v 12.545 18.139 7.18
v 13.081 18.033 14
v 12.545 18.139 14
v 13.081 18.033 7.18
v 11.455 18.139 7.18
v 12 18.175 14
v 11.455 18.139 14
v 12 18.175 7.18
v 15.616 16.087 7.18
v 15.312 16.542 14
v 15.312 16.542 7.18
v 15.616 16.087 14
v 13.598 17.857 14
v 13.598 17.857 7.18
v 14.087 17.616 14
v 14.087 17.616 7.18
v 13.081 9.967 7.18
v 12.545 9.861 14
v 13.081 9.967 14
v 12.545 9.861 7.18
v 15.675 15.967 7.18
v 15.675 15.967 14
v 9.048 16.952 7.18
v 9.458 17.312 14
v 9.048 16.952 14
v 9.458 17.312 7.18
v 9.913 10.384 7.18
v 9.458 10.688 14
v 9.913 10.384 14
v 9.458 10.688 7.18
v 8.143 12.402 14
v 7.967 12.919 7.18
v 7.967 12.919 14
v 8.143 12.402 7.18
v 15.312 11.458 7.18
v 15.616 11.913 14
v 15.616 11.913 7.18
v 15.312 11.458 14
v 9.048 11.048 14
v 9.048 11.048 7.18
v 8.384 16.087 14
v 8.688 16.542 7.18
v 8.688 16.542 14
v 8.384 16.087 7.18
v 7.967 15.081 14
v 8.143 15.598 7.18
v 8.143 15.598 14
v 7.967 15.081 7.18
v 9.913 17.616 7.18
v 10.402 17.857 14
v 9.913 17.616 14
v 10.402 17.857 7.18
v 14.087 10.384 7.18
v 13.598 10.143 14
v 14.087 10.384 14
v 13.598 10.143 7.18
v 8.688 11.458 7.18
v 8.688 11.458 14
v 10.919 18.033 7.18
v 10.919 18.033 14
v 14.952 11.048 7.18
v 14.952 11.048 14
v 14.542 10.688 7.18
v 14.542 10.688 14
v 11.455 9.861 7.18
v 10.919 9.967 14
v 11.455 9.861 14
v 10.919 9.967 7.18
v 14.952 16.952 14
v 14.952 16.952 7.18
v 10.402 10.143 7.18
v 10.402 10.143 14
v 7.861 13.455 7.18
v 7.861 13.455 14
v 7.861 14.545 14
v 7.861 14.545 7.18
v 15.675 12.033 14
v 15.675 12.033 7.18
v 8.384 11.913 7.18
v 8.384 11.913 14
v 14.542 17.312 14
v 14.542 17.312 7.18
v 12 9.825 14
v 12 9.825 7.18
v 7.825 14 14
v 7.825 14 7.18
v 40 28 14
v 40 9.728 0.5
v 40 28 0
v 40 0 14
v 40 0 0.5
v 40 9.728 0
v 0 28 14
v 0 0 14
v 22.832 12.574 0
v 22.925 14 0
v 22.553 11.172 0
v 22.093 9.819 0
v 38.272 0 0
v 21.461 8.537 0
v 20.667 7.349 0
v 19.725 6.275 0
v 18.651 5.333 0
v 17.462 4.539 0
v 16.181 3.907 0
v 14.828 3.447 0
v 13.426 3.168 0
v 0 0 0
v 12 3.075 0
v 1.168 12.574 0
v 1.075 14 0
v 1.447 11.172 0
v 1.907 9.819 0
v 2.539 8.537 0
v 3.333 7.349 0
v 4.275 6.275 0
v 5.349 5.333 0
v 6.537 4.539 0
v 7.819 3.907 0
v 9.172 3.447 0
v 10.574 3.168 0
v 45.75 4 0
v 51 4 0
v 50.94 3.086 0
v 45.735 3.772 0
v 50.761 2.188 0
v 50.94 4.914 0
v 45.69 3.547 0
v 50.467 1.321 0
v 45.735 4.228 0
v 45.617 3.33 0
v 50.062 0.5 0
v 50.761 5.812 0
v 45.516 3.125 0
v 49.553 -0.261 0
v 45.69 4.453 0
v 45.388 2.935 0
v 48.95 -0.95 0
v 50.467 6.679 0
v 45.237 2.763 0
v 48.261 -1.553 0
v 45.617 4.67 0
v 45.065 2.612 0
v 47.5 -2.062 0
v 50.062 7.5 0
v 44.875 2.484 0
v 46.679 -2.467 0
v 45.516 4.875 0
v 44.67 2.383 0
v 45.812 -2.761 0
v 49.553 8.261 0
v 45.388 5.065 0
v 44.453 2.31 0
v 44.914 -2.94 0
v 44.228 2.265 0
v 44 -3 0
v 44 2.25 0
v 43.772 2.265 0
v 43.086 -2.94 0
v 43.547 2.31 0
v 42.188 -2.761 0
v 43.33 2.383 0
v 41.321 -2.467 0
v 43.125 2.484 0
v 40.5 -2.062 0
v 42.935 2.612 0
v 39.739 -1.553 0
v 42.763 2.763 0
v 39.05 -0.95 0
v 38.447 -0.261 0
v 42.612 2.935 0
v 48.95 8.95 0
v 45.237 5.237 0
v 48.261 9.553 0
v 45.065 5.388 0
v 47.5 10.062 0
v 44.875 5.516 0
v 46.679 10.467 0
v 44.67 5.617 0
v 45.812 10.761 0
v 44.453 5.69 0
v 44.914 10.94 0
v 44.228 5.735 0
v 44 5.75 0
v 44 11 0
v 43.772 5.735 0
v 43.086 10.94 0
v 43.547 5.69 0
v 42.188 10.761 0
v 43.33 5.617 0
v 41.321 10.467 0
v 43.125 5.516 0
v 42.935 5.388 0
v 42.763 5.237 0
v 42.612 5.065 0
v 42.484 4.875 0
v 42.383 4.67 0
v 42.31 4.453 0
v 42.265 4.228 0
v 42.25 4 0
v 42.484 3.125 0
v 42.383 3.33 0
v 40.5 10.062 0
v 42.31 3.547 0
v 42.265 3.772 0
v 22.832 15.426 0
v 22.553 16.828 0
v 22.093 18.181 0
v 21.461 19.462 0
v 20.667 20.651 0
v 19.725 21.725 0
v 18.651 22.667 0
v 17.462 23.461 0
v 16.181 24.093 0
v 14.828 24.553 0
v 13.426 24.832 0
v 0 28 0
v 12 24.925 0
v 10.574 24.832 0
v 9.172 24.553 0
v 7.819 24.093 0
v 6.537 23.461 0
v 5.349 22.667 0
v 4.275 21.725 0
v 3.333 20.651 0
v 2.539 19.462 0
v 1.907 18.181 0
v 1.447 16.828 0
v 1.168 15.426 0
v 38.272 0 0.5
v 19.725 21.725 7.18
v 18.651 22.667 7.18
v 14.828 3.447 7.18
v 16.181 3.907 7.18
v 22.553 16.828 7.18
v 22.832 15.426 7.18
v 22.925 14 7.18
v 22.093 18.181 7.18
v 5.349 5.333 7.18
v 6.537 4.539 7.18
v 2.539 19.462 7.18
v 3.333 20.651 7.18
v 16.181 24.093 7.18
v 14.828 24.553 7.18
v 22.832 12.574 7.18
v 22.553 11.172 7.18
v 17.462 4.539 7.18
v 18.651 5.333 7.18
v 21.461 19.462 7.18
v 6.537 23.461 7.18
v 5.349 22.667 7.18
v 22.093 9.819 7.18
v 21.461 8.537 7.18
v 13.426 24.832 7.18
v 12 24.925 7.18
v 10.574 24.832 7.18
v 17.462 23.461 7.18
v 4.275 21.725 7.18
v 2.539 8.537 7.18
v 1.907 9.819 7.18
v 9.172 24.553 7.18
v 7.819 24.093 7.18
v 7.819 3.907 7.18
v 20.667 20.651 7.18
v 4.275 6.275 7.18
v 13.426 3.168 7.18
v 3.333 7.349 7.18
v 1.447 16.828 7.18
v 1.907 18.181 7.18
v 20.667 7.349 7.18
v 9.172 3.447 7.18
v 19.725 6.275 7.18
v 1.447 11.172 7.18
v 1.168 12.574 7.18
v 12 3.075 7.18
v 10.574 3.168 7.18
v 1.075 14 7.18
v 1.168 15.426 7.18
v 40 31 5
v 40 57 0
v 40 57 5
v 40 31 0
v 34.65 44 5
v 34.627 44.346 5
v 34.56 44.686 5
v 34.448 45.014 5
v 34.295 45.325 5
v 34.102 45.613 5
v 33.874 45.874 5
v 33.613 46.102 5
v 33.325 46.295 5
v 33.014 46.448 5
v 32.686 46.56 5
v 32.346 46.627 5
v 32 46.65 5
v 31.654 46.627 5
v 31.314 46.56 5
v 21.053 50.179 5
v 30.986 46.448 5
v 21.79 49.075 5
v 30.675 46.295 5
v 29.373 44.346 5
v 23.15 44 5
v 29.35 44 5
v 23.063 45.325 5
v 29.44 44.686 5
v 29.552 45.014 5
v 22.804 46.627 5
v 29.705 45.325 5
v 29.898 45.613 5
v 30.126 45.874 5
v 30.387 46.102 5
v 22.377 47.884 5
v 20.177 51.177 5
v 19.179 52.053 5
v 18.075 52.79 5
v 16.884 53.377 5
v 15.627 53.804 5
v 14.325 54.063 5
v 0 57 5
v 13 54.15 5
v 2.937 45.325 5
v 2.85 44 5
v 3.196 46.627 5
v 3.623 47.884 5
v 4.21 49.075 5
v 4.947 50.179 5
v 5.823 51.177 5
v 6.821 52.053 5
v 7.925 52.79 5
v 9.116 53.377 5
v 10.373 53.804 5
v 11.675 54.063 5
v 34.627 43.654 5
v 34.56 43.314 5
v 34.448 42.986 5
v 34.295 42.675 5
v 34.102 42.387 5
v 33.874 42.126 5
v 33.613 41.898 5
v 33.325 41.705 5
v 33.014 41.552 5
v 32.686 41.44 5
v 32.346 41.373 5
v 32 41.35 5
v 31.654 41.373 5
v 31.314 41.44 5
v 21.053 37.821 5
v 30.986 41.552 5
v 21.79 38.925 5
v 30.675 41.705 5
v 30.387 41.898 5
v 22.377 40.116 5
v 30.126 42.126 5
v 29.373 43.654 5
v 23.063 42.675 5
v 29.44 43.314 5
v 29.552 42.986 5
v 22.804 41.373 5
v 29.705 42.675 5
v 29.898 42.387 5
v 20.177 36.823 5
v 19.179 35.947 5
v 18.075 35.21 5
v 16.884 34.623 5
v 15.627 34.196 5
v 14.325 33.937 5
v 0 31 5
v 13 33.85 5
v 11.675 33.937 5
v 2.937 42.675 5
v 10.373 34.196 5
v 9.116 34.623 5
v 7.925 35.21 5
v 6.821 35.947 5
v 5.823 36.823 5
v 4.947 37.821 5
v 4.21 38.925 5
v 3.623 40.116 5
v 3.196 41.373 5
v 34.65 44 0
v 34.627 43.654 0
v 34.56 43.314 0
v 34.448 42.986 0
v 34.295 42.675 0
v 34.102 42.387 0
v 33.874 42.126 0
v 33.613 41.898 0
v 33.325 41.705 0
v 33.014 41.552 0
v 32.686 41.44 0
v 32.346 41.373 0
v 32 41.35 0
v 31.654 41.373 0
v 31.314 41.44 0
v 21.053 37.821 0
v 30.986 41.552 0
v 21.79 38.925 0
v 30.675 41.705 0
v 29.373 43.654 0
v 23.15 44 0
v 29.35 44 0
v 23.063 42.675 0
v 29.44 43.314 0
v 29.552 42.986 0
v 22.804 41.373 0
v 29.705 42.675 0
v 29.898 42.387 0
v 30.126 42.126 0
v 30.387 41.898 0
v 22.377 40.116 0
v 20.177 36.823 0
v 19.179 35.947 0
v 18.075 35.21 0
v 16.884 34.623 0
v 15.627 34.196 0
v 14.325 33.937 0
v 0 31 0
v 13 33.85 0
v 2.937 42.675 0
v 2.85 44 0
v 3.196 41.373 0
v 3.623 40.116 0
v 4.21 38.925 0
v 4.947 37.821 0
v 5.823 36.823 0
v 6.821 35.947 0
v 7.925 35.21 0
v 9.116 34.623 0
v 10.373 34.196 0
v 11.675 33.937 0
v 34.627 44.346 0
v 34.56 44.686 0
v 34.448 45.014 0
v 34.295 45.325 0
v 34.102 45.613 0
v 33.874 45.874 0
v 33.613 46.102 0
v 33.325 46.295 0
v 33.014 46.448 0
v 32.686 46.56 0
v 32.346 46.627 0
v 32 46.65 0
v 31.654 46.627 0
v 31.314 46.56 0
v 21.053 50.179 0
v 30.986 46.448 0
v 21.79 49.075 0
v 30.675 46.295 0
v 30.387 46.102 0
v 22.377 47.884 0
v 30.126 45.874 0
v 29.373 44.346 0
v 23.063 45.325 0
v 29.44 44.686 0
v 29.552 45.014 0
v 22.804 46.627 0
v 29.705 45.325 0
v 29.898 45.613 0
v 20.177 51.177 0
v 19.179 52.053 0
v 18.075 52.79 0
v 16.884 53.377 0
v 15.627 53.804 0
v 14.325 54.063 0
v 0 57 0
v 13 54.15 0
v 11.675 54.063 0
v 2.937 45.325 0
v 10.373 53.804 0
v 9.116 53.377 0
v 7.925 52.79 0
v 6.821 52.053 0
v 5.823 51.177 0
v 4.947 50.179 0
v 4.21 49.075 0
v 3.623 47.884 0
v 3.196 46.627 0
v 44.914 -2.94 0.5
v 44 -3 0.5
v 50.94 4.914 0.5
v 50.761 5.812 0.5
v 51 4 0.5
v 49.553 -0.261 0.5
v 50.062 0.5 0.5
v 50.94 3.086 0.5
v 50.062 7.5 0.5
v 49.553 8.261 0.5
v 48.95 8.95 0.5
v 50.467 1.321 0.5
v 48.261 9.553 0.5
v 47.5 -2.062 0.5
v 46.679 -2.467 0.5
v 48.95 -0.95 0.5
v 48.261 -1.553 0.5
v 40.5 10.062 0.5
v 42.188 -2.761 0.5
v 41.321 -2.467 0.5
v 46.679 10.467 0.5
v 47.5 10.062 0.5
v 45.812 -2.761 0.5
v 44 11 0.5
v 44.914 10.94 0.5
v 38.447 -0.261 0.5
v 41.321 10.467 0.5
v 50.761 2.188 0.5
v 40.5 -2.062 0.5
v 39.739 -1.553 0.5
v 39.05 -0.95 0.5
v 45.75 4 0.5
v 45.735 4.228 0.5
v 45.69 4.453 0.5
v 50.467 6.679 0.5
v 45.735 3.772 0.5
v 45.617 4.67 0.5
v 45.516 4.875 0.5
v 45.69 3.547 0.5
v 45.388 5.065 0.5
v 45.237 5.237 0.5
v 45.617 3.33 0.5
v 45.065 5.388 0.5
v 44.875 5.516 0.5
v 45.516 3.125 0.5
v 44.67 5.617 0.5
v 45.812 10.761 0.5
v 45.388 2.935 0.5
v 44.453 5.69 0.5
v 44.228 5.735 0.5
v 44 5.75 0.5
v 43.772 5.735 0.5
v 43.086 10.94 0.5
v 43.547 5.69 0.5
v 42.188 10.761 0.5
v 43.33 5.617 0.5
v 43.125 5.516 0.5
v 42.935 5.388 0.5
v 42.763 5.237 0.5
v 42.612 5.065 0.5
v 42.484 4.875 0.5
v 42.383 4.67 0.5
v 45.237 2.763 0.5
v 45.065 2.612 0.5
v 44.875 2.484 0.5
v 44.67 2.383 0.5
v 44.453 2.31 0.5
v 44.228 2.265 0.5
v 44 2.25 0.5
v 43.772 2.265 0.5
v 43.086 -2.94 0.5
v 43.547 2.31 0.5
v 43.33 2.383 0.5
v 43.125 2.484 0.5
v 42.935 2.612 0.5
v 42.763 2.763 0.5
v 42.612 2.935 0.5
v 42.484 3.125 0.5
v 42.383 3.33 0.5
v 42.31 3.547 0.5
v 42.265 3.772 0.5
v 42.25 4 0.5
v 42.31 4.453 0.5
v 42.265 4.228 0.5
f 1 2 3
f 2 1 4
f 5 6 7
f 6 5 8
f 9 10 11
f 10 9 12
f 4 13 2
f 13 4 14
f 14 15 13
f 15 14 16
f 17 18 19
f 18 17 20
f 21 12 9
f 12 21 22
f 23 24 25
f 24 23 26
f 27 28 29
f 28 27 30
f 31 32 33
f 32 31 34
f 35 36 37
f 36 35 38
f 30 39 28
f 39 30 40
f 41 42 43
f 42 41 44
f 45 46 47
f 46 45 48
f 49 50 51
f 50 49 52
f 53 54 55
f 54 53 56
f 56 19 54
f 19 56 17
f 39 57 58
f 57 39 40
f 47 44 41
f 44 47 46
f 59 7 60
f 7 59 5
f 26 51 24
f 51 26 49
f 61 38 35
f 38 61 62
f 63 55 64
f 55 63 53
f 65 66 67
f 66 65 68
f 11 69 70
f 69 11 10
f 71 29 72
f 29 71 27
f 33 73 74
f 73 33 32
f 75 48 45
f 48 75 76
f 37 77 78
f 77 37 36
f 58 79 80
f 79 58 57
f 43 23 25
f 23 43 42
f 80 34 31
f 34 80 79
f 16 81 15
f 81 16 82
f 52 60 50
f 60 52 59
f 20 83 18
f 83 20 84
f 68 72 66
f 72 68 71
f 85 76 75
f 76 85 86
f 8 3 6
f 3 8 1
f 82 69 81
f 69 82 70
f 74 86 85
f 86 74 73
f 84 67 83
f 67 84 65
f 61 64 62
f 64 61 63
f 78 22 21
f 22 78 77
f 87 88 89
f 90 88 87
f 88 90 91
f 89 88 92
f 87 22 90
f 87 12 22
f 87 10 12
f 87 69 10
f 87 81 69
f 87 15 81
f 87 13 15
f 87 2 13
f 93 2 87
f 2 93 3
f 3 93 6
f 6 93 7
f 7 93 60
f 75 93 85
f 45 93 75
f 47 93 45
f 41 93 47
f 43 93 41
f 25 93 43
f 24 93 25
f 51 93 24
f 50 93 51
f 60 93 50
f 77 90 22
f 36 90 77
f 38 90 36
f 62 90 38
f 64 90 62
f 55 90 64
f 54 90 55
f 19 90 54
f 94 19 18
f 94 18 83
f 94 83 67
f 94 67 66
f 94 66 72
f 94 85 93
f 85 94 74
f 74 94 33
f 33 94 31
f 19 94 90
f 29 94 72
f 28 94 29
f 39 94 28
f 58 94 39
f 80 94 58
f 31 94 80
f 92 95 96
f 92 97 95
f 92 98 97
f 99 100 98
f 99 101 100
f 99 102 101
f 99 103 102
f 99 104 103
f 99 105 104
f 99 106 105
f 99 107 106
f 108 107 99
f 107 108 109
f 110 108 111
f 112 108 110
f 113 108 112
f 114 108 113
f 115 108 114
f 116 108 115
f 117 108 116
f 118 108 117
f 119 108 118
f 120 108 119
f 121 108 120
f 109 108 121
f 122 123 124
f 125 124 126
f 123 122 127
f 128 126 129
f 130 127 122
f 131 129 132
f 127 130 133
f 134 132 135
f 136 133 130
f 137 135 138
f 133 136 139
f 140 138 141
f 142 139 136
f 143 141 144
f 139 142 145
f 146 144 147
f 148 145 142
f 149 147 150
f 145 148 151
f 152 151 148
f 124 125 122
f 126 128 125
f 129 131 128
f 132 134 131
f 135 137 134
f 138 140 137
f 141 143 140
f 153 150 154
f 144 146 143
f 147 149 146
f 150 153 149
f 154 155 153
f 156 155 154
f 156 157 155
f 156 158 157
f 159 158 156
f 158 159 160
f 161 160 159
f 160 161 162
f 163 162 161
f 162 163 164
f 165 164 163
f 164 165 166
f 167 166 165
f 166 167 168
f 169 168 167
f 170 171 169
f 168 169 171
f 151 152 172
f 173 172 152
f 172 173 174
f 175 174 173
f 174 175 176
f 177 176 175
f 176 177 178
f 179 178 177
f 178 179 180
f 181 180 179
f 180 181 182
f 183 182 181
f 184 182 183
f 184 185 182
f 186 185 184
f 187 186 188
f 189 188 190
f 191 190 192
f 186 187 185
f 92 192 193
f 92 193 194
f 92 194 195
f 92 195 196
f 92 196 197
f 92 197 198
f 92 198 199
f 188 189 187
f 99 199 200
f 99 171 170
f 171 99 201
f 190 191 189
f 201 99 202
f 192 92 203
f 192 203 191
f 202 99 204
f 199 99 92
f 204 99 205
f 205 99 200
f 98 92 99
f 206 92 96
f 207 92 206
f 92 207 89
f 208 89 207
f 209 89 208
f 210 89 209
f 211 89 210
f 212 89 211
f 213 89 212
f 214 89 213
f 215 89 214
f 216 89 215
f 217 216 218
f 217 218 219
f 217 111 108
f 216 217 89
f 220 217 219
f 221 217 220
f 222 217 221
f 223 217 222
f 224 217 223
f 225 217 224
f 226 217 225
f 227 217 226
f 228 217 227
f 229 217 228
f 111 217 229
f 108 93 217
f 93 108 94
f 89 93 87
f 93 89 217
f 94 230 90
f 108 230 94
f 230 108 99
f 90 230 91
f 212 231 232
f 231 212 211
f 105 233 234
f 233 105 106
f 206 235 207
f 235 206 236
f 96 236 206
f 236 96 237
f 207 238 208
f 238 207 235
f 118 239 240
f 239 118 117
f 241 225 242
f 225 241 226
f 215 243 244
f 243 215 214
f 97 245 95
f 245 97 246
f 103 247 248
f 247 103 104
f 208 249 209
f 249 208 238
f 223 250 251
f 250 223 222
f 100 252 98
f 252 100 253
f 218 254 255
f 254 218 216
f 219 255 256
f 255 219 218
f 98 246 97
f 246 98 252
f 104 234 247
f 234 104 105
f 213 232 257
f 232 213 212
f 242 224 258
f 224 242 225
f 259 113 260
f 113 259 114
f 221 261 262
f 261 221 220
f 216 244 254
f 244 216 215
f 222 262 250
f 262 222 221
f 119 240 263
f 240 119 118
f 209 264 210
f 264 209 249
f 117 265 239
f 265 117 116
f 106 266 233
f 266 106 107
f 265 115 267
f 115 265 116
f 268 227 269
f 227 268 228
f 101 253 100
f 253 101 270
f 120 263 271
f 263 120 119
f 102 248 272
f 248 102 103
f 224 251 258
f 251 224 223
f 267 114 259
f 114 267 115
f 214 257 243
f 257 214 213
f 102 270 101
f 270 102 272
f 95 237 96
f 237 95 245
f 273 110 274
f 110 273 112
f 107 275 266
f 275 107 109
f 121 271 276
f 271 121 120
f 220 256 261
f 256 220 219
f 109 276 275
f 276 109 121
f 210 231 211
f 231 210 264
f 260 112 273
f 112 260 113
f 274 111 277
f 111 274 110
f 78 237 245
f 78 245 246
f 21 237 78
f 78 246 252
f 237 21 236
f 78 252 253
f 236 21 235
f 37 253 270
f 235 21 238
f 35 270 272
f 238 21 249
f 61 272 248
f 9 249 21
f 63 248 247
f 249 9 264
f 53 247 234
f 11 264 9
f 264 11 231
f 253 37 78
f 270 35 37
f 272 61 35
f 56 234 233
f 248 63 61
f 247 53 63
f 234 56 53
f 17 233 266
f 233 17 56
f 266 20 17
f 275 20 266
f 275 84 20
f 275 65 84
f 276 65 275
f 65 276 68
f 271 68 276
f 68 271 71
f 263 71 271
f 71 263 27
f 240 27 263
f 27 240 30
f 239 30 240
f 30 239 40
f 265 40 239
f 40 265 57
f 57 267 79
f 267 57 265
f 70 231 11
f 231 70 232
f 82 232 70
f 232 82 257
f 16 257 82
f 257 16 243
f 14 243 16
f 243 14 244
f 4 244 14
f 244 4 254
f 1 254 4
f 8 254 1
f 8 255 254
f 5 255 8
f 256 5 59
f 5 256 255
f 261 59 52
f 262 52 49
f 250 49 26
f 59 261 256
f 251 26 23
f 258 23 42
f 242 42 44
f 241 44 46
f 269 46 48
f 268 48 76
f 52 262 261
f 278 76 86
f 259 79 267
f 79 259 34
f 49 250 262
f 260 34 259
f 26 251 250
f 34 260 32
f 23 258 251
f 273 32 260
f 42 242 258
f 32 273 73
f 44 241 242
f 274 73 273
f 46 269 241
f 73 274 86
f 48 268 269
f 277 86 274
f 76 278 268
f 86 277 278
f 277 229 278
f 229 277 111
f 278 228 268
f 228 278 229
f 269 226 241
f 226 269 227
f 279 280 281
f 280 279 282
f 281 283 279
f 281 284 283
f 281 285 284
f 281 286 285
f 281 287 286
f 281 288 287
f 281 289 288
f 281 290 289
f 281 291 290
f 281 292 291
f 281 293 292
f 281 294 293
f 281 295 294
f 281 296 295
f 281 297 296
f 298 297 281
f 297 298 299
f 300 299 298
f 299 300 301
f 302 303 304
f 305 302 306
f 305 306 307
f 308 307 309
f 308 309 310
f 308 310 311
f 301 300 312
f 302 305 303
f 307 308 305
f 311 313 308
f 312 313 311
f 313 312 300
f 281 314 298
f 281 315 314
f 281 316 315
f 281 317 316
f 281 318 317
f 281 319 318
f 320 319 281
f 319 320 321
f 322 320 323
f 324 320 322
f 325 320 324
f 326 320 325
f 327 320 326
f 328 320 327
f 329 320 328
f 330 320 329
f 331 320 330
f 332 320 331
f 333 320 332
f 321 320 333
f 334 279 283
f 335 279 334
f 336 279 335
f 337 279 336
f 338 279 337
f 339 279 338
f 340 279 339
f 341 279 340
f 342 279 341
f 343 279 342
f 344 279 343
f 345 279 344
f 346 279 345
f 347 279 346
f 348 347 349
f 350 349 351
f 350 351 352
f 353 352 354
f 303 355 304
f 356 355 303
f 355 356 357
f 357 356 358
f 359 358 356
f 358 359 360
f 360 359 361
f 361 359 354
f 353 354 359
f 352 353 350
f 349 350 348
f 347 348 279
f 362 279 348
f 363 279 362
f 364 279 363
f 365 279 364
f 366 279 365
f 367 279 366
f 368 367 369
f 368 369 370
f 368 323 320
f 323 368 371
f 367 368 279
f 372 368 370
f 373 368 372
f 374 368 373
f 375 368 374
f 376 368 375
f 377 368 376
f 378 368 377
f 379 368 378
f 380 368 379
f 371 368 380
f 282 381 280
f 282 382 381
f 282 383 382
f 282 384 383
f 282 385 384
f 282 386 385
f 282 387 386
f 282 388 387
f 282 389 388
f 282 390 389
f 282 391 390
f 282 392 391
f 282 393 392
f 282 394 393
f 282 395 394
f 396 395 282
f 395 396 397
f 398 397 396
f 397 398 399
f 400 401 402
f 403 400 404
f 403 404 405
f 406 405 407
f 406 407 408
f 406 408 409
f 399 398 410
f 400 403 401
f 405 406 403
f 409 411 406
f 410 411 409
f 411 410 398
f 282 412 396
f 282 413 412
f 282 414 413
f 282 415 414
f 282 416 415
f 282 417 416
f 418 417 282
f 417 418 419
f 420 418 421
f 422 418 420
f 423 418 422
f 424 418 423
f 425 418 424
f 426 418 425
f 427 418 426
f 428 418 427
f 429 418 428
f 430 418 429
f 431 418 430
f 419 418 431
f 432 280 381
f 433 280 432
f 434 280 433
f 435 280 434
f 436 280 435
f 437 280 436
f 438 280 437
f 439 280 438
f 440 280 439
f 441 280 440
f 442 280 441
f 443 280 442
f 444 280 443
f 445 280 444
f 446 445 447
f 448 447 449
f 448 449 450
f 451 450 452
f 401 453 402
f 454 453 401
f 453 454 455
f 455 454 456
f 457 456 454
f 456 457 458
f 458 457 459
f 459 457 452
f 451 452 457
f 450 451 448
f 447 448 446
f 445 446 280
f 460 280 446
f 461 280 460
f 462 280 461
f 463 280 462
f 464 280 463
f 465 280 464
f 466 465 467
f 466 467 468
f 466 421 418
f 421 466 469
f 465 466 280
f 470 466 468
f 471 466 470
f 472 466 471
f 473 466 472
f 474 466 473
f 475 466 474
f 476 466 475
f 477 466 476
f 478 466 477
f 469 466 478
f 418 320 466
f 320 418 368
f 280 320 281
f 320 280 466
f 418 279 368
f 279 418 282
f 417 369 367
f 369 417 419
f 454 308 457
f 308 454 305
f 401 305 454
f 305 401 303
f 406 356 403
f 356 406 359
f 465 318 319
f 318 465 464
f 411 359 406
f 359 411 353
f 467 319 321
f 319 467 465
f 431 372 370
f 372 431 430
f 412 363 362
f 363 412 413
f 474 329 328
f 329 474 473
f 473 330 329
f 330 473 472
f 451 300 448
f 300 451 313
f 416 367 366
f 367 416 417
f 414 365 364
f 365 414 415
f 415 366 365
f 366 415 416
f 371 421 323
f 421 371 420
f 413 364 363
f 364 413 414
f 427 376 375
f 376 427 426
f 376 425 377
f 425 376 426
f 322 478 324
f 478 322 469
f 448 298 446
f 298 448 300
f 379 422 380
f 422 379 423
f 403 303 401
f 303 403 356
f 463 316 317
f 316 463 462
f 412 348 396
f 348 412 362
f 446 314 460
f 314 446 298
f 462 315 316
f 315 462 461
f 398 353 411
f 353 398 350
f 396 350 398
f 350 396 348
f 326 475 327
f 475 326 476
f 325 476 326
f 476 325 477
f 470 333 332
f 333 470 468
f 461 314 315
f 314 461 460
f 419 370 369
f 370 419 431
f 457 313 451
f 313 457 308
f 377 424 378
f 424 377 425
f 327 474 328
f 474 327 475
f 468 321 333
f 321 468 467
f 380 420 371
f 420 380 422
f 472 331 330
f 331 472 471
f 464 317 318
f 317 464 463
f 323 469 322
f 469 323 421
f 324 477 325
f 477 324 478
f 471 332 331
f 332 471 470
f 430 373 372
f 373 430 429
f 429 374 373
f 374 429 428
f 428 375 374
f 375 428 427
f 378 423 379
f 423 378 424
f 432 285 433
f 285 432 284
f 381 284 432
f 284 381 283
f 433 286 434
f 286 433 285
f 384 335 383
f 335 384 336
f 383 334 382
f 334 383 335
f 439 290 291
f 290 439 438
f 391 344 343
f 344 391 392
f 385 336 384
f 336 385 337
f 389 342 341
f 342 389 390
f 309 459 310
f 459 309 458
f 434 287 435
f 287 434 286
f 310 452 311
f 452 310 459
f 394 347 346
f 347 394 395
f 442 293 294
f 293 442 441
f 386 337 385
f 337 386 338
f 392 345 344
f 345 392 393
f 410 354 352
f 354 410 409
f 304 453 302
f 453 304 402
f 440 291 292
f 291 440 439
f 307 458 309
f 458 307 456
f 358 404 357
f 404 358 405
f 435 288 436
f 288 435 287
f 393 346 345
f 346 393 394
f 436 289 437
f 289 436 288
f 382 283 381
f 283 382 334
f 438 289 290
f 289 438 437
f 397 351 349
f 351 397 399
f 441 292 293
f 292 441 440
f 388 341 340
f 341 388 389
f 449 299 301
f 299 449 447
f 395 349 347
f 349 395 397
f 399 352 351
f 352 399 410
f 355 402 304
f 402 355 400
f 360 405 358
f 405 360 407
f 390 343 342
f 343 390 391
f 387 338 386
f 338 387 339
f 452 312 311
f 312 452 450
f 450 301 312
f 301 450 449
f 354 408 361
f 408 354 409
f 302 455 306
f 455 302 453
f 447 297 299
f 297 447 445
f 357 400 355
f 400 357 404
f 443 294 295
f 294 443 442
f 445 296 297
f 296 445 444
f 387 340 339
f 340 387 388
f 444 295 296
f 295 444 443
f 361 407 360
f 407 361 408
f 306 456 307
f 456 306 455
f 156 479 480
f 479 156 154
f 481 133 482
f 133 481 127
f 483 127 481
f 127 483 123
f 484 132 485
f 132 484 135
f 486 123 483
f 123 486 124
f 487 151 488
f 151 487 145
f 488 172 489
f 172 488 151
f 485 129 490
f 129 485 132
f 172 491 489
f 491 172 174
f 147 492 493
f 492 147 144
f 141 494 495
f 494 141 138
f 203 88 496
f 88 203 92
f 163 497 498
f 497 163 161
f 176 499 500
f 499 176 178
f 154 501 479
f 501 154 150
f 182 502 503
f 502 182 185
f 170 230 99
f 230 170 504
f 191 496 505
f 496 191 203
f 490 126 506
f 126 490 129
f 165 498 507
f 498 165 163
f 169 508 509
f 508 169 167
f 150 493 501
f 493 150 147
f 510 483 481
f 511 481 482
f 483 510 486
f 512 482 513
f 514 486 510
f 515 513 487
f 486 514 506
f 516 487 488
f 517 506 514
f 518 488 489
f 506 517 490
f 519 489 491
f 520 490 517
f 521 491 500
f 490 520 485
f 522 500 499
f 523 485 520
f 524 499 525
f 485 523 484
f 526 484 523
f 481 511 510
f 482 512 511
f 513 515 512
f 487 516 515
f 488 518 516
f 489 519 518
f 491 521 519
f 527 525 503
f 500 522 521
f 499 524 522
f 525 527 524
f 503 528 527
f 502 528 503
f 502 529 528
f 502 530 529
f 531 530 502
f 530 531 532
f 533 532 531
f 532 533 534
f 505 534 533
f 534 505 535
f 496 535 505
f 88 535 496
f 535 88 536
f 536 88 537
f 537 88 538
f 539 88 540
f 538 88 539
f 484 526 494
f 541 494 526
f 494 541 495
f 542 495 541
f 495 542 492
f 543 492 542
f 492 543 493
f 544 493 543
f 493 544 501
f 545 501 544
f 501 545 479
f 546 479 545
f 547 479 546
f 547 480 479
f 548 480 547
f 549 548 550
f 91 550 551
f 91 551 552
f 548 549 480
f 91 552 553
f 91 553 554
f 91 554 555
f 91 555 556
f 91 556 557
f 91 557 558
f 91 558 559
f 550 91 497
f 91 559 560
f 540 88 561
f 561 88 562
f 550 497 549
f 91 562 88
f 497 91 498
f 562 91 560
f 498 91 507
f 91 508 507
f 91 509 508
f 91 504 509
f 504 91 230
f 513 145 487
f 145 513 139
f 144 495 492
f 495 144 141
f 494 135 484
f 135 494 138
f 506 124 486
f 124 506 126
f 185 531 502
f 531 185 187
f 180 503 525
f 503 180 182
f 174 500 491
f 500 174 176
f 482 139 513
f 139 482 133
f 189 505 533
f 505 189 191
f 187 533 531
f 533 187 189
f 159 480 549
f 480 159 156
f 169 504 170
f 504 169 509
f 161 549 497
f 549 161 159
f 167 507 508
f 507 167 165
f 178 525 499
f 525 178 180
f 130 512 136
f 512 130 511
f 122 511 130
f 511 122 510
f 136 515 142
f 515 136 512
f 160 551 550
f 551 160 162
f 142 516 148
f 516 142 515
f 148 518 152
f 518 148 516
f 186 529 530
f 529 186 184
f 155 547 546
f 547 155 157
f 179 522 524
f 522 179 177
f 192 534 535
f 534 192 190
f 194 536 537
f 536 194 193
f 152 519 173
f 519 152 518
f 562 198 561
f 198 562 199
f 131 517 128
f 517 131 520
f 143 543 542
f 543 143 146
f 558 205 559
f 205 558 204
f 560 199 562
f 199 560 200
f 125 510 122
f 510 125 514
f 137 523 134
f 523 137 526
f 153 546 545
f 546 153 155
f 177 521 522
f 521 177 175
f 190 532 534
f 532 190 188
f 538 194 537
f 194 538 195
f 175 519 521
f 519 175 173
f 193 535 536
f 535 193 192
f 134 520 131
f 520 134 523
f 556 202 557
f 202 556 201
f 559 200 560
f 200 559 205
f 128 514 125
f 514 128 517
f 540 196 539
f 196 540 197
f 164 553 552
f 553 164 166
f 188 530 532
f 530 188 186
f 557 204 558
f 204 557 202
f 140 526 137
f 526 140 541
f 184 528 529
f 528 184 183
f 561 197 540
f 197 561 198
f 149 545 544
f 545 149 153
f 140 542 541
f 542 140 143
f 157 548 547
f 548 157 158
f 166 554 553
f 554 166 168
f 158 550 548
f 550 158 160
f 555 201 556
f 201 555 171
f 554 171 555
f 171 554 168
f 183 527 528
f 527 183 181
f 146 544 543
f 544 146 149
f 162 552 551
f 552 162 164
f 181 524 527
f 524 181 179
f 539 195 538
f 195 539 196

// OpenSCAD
// file: parameters.scad
// =============================================================================
// Gen-CE — nightly 2026-10-14 (physics_scorer, honest magpylib watts)
// Wire-saver stator for the Gen-CD rotors: only 3.9 mm of copper (≈9 layers), magnet faces ≈6.5 mm apart, peak Bz ≈0.70 T. Uses ≈300 m of wire (≈80 m less than Gen-CD) and still clears Gen-BX; shares every rotor part, the steel, the frame rods and the bearing bridges with Gen-CD, so the two stators swap on the same machine.
// Clocking 0 deg (magnets N facing S) + D-flat keyed bore + index notch + flip-symmetric hole map.
// Windable 2-piece bobbin; turns = physics_scorer turns_fit; copper only between flanges.
// Steel back-iron: 2× Ø198 × 4.76 mm (3/16") mild-steel discs (steel_backiron_disc.dxf); magnets sit ON the steel
// (through-pockets) -> score with --back-iron. Night 2026-10-14.
// =============================================================================
topology            = "dual_rotor";

// --- Wire / winding (physics_scorer winding-fit) -------------------------------
wire_awg            = 26;
wire_od             = 0.45;     // insulated OD mm (bare 0.405)
fill_realistic      = 0.65;     // insulated-wire area / window (DENSE layered wind with a jig; scorer cap 0.65)
turns               = 288;       // = physics_scorer turns_fit (do NOT raise)
coil_former_type    = "bobbin";
coil_core_inset     = 18.10;     // radial copper build: hub = copper boundary inset by this
wind_build_axial    = 0.0;      // nothing proud of the flanges
wind_build_radial   = 0.0;

// --- Bobbin (base + lid) ---------------------------------------------------------
coil_id_r           = 64.00;    // copper boundary sector
coil_od_r           = 104.00;
span_deg            = 26.87;    // = pitch - 2*asin((wall+0.85)/coil_id_r) -> >=1.2 mm stator web
former_web          = 3.90;     // copper height between flanges (TALL copper: steel keeps Bz up)
flange_t            = 0.80;     // >= 0.8 mm FDM wall rule (tall winds push on the flanges)
wall                = 0.80;     // flange lip beyond copper
former_bare_h       = former_web + 2 * flange_t;
coil_envelope_h     = former_bare_h + 2 * wind_build_axial;
tab_w               = 7.0;
tab_len             = 7.0;
tab_h               = former_bare_h / 2;
pin_d               = 1.9;      // 1.75 mm filament locating pin
coil_mount_r        = coil_od_r + 0.2 + 4.0;
lead_y              = 1.6;
lead_slot_w         = 0.9;
lead_groove_d       = 0.6;

// --- Gap -------------------------------------------------------------------------
run_clear           = 0.50;     // rotor face -> flange
gap_spacer_h        = run_clear + wind_build_axial;
m2m                 = coil_envelope_h + 2 * run_clear;   // rotor face to rotor face (= gap_sleeve length)

// --- Stator ----------------------------------------------------------------------
coil_stations       = 12;
bay_clear           = 0.35;     // 0.35 mm: bobbin BASES print IN PLACE inside the stator bays (print-in-place gap), then pop out
stator_thick        = former_bare_h;                        // bobbins flush both faces
stator_od           = 229.0;
shaft_clear_stator  = 14.0;     // stator is static; gap sleeve OD 12 spins inside
stator_ir           = 58.85;    // ANNULAR stator: open centre (nested one-plate pack); inner rim 4.0 mm

// --- Rotor(s) --------------------------------------------------------------------
magnet_Br           = 1.43;     // N52
magnet_d_large      = 20.0;
magnet_h_large      = 5.0;      // one O20x5 per pocket
magnet_h_small      = 5.0;      // unused: no O5 pockets in this kit
halbach_magnetisation = "none";  // NO O5 assist magnets in this kit (scan: they lower the 4-pole score)
rotor_b_same_axis   = true;     // same-index magnets share one axis: N faces S across the gap
large_pocket_d      = 20.3;
small_pocket_d      = 5.3;
pocket_h            = 5.00;     // THROUGH the carrier: magnet back face sits on the steel disc (FLUSH seat: carrier = magnet height, magnet face level with the rotor face)
large_n             = 8;
R_large             = 86.0;
small_r_list        = [];       // no O5 pockets
carrier_od          = 198.0;
ring_ir             = 72.85;    // RING rotor: PLA magnet ring r ring_ir..carrier_od/2 (steel disc = structural rotor)
hub_flange_od       = 74.0;     // separate rotor_hub flange (inside the ring, flush with the ring face)
csk_d               = 6.6;      // M3 countersunk head pocket (ISO 10642 head 6.0 nominal) on the stator face
csk_depth           = 1.55;     // = (csk_d - m3_clear) / 2: 90 deg cone; head sits 0.3 mm below the face
n_seg               = 8;        // magnet-carrier ARCS per rotor (segmented carrier)
seg_deg             = 360 / n_seg;
seg_start           = -22.5;   // arc edge angle (between pocket 0 and its clamp bolt)
seg_kerf_deg        = 0.4;      // gap between neighbouring arcs on the steel
carrier_thick       = pocket_h;
hub_h               = 12.0;     // > steel_t + insert: radial set-screw clears the steel
hub_od              = 24.0;     // slim hub so the M4 brace rods fit at R~18 inside the coil ring
hub_insert_d        = 4.0;      // M3 heat-set insert, radial, bears on the D-flat
rotor_b_offset_deg  = 0.0;      // CLOCKING: magnets directly opposite
shaft_key           = "dflat";
dflat_depth         = 0.5;      // 8 mm shaft with 0.5 mm flat (7.5 across flat)
index_notch_d       = 3.0;

// --- Steel back-iron (buyable laser-cut) -------------------------------------------
steel_t             = 4.76;      // mild steel thickness (image method ignores it; sized from steel_flux.py so the return path stays well below saturation)
steel_center_hole   = 26.0;     // slips over the rotor hub (OD 24)
steel_od            = carrier_od;   // steel disc OD = rotor carrier OD

// --- Modular MAX interface ----------------------------------------------------------
shaft_bore          = 8.35;
dflat_x             = 4.0 - dflat_depth + (shaft_bore - 8.0) / 2;
bearing_d           = 21.85;
bearing_h           = 7.2;
m3_clear            = 3.5;
bolt_r_inner        = 30.0;     // M3 steel-disc clamp bolts (inside the magnet ring)
bolt_n_inner        = 4;
bolt_inner_angles   = [0, 90, 180, 270];
bolt_r_outer        = 86.0;     // second M3 steel-disc clamp ring
bolt_outer_angles   = [22.5, 67.5, 112.5, 157.5, 202.5, 247.5, 292.5, 337.5];
flange_bolt_r       = 109.5;     // frame rods: OUTSIDE the rotor OD (rotors spin inside them)
flange_bolt_n       = 4;
flange_bolt_offset  = 45.00;    // between coil stations -> never cuts a lead groove/tab
brace_r             = 18.0;
brace_d             = 4.3;      // temporary M4 jack rods (assembly only)
brace_n             = 4;
brace_angles        = [45, 135, 225, 315];          // flip-symmetric

spacer_pad_od       = 14.0;
spacer_pad_id       = m3_clear;
endbell_od          = 229.0;
endbell_thick       = 8.0;
endbell_shaft_clear = 10.0;
collar_h            = 10.0;
standoff_od         = 9.0;
frame_standoff_h    = run_clear + carrier_thick + hub_h + collar_h + 2.0;
sleeve_od           = 12.0;
plate_max_mm        = 410;

$fn = 64;
// main file
// Gen-CE — fit coupon: O20/O5 THROUGH pockets at carrier thickness (test on a steel offcut), 608 seat,
// D-flat bore, gap shim, and one bobbin-bay slice (bobbin footprint + bay_clear) to test former fit.
include <parameters.scad>;
$fn = 48;
// D-flat keyed bore: flat faces +X (angle 0 = magnet pocket 0 = index notch)
module dflat_bore(h) {
    intersection() {
        cylinder(d=shaft_bore, h=h);
        translate([-shaft_bore, -shaft_bore, 0]) cube([shaft_bore + dflat_x, 2*shaft_bore, h]);
    }
}
module sector_2d(r_in, r_out, ang) {
    polygon([
        for (a = [-ang/2 : ang/24 : ang/2]) [r_in*cos(a), r_in*sin(a)],
        for (a = [ang/2 : -ang/24 : -ang/2]) [r_out*cos(a), r_out*sin(a)]
    ]);
}
module footprint_2d() { offset(r=wall) sector_2d(coil_id_r, coil_od_r, span_deg); }
module hub_2d()       { offset(delta=-coil_core_inset) sector_2d(coil_id_r, coil_od_r, span_deg); }

block_w = 40; block_d = 28; block_h = 14;
difference() {
    cube([block_w, block_d, block_h]);
    translate([12, block_d/2, -0.02]) cylinder(d=bearing_d, h=bearing_h);
    translate([12, block_d/2, -0.1]) dflat_bore(block_h + 1);
}
translate([0, block_d + 3, 0]) difference() {
    cube([40, 26, carrier_thick]);
    translate([13, 13, -0.1]) cylinder(d=large_pocket_d, h=carrier_thick + 0.2);
    translate([32, 13, -0.1]) cylinder(d=small_pocket_d, h=carrier_thick + 0.2);
}
translate([block_w + 4, 4, 0])
    difference() {
        cylinder(d=spacer_pad_od, h=gap_spacer_h);
        translate([0, 0, -0.1]) cylinder(d=spacer_pad_id, h=gap_spacer_h + 0.2);
    }
